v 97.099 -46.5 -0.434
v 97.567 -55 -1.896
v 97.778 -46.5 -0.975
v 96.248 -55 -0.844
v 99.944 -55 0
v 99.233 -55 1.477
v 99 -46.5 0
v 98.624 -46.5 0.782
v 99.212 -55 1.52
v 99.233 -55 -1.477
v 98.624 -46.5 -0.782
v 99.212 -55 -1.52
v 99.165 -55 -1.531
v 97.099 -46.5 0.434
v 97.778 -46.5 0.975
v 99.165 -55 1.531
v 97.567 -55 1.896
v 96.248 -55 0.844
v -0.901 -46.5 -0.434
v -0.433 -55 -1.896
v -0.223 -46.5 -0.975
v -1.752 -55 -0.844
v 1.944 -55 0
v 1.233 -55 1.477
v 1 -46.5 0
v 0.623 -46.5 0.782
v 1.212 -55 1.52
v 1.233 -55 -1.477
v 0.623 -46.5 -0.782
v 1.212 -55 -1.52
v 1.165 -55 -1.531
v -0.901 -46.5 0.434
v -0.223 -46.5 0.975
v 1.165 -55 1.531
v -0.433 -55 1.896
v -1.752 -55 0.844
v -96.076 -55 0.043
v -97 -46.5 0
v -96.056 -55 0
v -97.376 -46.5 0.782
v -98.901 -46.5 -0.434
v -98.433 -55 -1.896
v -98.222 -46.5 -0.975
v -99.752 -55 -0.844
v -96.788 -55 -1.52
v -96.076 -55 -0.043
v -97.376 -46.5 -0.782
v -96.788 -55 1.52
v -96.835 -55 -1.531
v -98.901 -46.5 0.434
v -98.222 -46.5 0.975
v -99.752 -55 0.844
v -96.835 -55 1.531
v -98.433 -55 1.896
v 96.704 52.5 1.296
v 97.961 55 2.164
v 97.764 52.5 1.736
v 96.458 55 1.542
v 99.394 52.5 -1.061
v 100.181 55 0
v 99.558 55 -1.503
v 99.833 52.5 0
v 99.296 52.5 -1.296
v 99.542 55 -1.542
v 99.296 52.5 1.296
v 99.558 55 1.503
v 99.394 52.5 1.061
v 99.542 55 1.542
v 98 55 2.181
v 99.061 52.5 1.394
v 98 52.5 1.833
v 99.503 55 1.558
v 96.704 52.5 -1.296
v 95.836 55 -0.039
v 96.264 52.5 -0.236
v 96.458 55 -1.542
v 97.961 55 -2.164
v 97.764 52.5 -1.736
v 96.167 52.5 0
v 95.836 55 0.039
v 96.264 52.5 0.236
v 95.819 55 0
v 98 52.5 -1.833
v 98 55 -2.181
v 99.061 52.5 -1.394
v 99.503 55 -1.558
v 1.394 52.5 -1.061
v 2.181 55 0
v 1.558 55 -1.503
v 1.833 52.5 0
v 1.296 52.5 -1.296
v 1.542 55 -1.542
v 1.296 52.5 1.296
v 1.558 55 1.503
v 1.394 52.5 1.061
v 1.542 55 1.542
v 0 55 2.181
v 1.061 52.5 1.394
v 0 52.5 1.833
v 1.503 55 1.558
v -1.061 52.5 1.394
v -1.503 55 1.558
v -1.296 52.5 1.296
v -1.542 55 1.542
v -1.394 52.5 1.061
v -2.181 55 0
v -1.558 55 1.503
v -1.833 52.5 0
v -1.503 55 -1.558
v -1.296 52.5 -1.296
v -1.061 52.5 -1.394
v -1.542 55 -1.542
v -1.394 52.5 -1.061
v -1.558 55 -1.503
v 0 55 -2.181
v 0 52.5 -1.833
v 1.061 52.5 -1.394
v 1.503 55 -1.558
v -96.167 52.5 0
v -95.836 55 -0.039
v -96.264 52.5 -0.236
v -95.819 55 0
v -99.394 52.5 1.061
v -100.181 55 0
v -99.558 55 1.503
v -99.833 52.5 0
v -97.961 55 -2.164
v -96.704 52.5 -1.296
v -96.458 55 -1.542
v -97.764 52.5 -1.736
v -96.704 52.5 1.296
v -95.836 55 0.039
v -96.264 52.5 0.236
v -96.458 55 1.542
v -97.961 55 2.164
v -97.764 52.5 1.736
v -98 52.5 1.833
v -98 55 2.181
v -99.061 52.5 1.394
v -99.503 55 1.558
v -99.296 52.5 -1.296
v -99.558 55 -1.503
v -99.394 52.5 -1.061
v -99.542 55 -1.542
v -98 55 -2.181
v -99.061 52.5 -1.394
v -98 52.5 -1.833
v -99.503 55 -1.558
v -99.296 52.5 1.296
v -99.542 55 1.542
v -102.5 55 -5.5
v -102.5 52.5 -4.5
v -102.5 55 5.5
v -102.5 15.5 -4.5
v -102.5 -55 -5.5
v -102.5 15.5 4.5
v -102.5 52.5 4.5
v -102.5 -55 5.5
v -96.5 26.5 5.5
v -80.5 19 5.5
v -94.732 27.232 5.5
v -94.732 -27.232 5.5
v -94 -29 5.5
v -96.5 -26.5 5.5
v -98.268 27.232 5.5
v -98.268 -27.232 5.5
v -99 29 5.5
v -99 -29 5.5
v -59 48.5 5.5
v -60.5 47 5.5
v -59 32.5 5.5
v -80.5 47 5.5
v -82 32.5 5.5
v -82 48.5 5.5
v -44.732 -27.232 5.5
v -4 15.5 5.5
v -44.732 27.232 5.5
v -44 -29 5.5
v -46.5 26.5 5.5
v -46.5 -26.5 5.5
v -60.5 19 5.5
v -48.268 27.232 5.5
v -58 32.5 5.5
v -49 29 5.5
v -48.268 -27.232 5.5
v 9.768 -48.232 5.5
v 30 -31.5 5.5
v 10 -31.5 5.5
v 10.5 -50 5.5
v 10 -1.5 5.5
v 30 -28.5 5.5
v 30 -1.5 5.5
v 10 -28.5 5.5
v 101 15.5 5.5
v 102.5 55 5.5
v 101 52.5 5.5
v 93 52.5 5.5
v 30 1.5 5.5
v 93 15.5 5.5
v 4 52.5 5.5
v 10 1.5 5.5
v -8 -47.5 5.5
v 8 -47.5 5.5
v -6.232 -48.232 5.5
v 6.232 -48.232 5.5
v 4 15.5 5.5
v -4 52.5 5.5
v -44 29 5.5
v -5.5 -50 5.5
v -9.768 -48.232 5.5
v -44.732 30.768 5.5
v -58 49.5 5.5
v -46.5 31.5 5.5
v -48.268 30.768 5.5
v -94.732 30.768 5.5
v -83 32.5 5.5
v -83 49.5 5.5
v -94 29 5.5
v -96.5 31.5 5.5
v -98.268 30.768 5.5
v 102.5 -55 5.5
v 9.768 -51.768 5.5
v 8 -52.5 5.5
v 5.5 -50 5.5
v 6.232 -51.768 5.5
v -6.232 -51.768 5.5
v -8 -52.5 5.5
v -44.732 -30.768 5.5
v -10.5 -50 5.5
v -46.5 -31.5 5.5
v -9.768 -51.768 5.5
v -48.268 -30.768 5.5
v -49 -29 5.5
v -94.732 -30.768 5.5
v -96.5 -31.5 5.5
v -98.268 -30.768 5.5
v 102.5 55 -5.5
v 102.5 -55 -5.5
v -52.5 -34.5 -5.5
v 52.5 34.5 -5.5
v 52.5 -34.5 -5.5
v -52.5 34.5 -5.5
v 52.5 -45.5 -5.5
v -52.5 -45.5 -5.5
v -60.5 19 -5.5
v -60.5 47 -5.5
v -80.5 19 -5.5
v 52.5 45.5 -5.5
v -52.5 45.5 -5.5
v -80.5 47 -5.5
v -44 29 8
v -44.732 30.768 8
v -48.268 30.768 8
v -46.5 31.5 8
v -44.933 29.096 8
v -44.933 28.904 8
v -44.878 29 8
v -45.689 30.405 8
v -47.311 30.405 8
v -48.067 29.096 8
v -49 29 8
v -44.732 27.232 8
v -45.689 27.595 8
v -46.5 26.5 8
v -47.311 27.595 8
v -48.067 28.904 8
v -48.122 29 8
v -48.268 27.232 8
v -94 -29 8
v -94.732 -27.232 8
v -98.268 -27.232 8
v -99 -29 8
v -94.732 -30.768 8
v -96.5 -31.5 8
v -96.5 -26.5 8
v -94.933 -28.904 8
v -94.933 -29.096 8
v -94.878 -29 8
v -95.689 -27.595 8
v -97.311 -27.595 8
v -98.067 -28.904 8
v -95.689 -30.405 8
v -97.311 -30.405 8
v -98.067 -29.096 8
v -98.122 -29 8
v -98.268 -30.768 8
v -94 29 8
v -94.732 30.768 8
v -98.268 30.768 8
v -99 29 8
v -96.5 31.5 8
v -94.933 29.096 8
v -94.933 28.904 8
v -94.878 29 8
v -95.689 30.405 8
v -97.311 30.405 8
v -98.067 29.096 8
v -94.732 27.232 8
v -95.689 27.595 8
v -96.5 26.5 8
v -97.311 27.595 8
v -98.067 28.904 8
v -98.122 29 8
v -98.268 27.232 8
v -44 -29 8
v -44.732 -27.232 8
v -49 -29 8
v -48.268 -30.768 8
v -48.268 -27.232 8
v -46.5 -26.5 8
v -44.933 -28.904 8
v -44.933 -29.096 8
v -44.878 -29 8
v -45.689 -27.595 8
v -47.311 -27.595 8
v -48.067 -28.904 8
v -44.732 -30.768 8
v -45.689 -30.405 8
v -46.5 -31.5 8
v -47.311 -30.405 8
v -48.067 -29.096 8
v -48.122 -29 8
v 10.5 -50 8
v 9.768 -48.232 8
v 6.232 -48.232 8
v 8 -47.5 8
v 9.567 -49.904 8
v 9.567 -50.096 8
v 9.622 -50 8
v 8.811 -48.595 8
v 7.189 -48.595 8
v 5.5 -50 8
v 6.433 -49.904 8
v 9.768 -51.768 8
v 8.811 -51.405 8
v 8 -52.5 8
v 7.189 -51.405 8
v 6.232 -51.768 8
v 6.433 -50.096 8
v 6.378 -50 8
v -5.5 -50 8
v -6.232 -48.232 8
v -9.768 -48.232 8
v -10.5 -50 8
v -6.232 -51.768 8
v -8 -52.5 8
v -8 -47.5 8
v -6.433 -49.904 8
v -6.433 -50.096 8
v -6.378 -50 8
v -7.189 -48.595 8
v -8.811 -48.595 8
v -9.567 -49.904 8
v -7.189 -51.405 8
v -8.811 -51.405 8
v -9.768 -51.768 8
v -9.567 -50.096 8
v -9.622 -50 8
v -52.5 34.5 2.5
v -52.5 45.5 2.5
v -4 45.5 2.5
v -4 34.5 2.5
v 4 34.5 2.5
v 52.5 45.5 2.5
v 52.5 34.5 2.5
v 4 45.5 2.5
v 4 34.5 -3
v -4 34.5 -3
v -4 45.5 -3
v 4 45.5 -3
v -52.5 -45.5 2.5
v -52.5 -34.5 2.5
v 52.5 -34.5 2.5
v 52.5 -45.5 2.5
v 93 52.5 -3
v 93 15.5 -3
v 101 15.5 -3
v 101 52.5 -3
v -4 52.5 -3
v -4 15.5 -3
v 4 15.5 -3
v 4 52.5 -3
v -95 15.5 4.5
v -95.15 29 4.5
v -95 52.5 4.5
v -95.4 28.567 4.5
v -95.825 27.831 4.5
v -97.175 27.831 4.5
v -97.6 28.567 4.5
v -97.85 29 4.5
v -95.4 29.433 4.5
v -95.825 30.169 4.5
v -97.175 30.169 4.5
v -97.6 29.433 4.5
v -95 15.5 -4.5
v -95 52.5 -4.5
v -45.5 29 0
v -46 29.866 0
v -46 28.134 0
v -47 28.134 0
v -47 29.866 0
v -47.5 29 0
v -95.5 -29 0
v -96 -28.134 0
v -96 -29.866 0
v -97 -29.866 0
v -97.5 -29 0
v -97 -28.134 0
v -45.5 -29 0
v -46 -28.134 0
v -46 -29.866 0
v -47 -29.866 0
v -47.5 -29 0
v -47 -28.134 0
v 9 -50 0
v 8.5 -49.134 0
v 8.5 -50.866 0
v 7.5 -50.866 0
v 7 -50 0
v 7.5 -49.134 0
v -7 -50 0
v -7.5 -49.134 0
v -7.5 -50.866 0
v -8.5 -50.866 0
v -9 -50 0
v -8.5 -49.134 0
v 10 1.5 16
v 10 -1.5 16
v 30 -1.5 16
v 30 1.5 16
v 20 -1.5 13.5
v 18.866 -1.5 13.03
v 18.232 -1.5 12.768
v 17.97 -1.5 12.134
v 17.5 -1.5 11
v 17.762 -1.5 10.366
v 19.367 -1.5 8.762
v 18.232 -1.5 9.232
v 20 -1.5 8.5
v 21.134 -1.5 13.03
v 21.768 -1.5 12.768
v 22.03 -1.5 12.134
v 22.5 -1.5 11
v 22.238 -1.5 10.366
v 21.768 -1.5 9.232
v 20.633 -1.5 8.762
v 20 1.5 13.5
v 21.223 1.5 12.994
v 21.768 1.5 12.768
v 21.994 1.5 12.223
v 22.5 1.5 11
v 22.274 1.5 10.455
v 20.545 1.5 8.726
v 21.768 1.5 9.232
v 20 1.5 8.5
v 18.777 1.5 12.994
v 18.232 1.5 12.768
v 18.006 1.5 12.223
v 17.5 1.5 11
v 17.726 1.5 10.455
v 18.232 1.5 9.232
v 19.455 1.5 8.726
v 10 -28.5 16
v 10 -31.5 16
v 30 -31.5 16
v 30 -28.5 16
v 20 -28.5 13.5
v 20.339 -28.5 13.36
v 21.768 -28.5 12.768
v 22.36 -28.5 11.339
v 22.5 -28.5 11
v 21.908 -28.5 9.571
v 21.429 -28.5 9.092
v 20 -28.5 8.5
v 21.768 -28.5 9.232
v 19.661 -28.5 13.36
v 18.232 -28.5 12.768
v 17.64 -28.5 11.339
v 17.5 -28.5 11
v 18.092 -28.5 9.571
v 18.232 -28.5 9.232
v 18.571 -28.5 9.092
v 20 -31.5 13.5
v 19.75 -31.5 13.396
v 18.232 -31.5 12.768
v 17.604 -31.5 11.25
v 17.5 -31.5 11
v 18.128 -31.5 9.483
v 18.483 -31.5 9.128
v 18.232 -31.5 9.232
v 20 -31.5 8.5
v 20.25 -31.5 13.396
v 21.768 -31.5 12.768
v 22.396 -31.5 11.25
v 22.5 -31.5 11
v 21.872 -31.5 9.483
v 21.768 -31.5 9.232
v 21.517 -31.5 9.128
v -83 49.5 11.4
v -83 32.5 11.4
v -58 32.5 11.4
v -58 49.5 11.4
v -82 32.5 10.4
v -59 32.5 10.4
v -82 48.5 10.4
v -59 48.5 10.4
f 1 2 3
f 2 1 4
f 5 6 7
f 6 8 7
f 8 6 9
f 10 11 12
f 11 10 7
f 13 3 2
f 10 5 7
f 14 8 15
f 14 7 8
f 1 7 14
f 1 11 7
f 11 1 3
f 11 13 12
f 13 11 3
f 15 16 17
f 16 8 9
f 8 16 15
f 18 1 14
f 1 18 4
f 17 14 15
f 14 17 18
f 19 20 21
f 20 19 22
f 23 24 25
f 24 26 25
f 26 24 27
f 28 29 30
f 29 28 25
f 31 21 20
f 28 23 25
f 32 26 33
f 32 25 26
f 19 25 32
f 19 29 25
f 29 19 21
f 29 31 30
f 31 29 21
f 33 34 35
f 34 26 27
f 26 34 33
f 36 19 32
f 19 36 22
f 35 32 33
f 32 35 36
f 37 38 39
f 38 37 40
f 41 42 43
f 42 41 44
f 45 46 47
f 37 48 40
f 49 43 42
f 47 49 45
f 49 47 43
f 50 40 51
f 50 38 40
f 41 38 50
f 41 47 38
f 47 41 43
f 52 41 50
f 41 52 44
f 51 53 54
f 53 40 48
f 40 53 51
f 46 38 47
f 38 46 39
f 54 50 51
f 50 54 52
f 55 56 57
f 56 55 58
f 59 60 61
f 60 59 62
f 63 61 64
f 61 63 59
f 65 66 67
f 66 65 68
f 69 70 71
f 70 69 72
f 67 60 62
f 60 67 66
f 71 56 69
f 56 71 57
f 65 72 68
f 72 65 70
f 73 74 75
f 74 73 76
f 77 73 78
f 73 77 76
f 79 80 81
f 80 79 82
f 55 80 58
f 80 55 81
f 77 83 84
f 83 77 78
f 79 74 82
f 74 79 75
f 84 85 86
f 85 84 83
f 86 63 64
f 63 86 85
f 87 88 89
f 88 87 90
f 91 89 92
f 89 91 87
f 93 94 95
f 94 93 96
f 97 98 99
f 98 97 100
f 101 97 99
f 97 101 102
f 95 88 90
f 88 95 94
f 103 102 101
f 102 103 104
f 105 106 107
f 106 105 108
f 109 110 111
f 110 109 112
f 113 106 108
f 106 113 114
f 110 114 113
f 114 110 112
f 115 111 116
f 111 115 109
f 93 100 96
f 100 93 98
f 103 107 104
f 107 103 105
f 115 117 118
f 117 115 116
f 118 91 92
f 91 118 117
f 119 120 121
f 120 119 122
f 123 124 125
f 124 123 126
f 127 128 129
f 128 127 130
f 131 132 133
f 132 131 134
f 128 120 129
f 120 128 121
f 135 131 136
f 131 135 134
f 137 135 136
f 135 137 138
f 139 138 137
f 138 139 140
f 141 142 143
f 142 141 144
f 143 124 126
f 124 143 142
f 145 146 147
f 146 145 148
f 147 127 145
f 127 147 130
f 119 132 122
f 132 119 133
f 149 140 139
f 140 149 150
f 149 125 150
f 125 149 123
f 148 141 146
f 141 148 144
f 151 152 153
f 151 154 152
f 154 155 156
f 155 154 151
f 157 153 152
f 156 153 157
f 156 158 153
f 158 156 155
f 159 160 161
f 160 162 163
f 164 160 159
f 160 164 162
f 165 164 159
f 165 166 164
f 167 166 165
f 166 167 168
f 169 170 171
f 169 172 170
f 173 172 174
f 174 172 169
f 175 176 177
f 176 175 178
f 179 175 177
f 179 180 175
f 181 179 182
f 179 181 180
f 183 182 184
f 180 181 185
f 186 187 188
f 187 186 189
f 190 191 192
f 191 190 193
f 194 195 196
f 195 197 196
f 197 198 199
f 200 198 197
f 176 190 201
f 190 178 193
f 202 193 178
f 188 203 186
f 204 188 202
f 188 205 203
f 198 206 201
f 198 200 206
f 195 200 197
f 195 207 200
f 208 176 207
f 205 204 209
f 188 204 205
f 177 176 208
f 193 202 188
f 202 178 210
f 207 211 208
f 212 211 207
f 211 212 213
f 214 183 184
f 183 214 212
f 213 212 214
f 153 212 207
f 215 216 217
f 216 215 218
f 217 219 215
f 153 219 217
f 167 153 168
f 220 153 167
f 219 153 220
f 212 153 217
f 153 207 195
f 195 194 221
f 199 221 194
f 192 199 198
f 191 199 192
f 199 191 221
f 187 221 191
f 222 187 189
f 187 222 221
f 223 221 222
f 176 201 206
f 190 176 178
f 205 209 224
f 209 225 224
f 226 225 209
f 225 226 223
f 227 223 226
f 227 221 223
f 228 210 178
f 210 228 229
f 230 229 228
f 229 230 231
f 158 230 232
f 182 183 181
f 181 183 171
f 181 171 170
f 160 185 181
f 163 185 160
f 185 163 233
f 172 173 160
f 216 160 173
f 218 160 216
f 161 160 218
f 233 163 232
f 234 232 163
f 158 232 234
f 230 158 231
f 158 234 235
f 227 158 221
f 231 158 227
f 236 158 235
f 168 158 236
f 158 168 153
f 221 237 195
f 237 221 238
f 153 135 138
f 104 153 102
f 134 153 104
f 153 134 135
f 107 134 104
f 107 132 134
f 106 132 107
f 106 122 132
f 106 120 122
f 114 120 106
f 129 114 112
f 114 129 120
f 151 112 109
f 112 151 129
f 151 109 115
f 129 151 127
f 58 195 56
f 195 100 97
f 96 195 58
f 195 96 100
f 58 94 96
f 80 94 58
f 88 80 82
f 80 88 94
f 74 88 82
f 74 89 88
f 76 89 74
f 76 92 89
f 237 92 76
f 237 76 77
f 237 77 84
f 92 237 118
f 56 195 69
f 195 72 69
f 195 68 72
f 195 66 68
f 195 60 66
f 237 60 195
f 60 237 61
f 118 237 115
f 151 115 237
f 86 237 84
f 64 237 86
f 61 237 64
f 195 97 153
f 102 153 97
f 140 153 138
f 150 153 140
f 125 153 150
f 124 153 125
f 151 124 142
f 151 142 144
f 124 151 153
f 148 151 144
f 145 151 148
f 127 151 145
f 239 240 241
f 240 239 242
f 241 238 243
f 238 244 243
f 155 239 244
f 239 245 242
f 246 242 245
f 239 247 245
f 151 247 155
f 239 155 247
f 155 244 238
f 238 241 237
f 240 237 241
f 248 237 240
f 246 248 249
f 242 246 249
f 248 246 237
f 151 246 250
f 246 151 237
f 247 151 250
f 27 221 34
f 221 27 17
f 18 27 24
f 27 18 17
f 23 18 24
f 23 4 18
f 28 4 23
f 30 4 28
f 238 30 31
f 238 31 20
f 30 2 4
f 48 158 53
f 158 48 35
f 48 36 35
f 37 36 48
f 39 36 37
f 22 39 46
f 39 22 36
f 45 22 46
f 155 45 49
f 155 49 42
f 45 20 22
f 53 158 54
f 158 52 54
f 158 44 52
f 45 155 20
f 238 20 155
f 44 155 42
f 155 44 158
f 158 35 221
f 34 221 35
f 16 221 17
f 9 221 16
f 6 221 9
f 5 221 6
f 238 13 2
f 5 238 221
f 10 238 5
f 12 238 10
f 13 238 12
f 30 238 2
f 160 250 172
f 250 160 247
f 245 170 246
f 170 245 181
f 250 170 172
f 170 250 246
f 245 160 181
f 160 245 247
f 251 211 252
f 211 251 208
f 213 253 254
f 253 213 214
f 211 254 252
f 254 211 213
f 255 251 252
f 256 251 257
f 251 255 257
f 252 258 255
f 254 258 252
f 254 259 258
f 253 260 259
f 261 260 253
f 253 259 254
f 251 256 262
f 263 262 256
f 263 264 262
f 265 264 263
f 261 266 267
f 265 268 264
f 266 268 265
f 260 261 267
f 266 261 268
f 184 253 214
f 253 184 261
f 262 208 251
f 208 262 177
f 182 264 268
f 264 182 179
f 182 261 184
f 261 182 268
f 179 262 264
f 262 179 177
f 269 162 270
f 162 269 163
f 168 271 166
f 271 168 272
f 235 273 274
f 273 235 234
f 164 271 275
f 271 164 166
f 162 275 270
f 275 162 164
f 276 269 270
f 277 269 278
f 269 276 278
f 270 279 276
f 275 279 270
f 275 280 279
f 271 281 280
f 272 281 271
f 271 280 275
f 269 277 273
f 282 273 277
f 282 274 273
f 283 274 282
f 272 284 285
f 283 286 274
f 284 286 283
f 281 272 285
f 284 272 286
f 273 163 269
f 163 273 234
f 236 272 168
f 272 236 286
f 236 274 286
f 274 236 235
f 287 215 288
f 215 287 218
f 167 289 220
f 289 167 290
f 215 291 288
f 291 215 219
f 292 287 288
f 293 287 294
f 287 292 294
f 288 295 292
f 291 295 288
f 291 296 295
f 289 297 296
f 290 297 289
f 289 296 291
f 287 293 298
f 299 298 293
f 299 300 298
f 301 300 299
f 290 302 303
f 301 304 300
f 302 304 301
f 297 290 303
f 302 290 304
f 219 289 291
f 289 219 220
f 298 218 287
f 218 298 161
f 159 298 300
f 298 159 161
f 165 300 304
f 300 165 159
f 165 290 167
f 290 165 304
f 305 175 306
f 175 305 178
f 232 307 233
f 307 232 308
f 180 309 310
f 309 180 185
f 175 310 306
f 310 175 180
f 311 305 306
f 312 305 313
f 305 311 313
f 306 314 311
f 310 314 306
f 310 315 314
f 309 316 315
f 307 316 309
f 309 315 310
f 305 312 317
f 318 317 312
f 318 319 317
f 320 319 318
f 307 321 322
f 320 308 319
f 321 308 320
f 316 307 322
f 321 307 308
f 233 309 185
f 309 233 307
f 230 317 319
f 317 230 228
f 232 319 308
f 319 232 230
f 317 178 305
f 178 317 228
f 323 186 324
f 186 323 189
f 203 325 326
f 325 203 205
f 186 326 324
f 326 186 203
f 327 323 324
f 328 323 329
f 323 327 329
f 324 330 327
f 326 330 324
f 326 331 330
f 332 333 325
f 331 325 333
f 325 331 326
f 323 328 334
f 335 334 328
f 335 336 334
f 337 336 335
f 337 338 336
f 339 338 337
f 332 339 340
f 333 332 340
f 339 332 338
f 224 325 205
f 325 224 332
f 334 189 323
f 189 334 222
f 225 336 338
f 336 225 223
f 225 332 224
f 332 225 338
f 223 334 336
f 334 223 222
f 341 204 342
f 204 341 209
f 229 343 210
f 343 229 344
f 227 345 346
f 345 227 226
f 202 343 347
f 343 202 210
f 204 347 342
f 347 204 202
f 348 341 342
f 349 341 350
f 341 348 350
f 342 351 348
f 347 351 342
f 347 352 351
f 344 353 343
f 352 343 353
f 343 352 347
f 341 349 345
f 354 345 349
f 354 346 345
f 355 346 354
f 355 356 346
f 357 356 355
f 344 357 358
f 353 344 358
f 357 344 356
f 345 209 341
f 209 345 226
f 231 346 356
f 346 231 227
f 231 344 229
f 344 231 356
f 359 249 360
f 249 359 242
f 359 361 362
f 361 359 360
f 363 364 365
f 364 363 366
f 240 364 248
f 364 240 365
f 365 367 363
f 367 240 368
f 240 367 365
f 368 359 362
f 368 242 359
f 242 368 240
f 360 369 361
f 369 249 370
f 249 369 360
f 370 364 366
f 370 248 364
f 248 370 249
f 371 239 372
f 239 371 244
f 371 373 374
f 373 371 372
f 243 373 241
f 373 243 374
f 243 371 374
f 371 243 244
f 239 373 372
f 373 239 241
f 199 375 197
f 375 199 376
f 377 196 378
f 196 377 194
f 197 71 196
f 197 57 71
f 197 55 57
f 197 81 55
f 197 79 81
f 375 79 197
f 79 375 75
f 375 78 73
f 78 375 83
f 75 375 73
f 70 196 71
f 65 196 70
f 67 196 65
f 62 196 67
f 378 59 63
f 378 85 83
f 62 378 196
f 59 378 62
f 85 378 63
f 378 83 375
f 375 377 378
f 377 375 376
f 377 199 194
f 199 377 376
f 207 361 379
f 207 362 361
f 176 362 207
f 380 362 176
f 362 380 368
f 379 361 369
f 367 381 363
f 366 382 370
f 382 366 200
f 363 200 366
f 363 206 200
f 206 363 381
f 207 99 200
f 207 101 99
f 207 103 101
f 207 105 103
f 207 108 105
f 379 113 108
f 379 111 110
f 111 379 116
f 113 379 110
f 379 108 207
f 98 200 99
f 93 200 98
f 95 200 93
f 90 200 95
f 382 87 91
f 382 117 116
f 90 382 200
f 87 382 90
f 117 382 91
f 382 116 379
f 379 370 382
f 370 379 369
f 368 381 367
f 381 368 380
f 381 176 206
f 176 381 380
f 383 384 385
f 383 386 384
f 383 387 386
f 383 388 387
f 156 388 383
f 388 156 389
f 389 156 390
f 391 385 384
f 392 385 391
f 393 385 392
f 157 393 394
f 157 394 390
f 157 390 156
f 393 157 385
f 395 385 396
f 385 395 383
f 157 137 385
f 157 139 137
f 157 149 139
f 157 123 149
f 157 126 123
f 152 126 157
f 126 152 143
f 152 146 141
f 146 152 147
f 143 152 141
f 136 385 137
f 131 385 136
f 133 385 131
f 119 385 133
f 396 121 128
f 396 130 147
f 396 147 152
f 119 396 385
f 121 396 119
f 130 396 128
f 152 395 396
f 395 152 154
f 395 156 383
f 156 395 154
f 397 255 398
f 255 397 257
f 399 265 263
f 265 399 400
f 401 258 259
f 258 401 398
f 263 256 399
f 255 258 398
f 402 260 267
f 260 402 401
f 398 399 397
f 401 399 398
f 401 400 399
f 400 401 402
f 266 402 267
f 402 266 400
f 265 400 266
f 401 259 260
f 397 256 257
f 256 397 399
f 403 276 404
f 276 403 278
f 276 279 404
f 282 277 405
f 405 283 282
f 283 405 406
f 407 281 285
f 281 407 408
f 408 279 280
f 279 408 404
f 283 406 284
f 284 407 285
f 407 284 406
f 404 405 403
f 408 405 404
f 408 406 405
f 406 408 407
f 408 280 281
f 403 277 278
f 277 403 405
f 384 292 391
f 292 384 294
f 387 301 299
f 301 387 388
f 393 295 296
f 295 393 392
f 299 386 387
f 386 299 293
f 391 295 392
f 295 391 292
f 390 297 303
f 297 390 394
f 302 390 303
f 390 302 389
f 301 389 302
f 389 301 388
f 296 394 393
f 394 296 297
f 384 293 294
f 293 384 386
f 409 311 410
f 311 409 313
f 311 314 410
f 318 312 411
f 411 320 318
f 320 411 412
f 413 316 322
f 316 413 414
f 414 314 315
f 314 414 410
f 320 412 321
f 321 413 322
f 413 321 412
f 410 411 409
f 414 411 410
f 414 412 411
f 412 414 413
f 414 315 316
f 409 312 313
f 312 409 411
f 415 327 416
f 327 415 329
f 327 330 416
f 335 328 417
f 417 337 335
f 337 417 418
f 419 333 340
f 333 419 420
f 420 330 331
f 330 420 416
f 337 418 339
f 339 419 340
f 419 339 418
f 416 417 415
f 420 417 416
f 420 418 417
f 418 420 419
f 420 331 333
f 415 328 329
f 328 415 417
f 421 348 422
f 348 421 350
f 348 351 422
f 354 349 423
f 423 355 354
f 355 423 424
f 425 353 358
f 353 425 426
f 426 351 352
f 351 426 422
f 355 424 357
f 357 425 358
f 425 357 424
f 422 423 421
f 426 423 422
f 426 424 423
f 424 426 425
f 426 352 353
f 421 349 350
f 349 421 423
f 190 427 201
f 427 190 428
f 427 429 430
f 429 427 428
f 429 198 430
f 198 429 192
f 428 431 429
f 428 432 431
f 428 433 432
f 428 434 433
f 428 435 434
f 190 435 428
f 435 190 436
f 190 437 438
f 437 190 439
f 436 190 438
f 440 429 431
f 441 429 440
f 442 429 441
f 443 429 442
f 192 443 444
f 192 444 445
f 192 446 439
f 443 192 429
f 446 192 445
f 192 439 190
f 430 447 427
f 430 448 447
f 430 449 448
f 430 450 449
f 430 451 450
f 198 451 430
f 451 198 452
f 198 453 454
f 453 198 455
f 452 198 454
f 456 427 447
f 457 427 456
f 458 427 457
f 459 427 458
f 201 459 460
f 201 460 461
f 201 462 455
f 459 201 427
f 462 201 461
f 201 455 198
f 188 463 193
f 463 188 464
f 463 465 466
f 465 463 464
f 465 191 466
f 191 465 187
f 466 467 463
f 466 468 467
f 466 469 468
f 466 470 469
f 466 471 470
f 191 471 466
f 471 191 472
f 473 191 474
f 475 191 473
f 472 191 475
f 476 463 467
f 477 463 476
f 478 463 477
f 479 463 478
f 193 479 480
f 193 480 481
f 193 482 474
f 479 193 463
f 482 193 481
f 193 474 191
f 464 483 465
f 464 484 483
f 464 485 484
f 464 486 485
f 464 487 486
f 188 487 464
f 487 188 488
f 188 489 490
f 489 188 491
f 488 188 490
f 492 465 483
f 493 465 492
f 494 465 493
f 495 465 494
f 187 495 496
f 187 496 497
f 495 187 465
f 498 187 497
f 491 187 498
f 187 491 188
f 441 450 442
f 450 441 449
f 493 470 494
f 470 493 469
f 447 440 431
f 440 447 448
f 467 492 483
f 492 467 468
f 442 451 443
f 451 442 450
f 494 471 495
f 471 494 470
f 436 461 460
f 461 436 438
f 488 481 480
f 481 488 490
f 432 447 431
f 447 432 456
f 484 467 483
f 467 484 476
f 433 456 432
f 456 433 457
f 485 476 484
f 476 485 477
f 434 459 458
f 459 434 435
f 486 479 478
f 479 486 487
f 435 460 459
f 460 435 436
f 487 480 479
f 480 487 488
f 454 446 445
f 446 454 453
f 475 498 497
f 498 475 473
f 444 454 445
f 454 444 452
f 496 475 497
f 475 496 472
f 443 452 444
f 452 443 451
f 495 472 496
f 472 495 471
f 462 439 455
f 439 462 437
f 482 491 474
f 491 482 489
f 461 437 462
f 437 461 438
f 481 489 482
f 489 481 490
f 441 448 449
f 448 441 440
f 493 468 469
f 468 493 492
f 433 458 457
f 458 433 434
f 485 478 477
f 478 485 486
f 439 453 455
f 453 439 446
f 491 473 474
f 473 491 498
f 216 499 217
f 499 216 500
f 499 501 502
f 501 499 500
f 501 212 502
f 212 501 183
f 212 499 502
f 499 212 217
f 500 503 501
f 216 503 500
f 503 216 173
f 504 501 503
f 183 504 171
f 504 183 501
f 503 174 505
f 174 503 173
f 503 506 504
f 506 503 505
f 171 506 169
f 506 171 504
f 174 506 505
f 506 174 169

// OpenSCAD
module _screws_box(diam){
	translate([98, 0 , 2 ])  cylinder(  9 , 1,  diam/2 ,true);
	translate([0, 0 , 2 ])  cylinder(  9 , 1,  diam/2 ,true);
	translate([-98, 0 , 2 ])  cylinder(  9 , 1,  diam/2 ,true);
} 
 
module screws_box(){
	translate([0, -49, 0 ]) rotate([90, 0 , 0 ]) _screws_box(4);
	translate([0, 49, 0 ]) rotate([-90, 0 , 0 ]) _screws_box(4.5);
} 
module soporte_pi (){
	translate([25, 29, 5.5 ])  cylinder(  5 , 2.5,  2.5 ,true); 
	translate([-25, -29,  5.5 ])  cylinder(  5 , 2.5,  2.5 ,true); 
	translate([-25, 29,  5.5 ])  cylinder(  5 , 2.5,  2.5 ,true); 
	translate([25, -29,  5.5 ])  cylinder(  5 , 2.5,  2.5 ,true); 
}
 module talpwr(){
  translate([8, -50, 4.5 ])  cylinder(  9 , 1,  1.7 ,true);
  translate([-8, -50, 4.5 ])  cylinder(  9 , 1,  1.7 ,true);    
 }
 
 module tal_pi(){
 translate([25, 29, 4.5]) cylinder(  9 , 1,  1.7 ,true);
 translate([-25, -29,  4.5 ]) cylinder(  9 , 1,  1.7 ,true);
 translate([-25, 29,  4.5 ])cylinder(  9 , 1,  1.7 ,true);
 translate([25, -29,  4.5 ]) cylinder(  9 , 1,  1.7 ,true); 
 }

module sd(){
    difference(){
  cube([25 , 17,6 ] ,true ); 
   translate([0, -1,  -1 ])cube([23 , 17, 6 ] ,true );  
    } 
} 
 
module box(){ 
	difference(){
		difference(){
			cube([205 , 110,11 ] ,true ); 
			screws_box();
		}
		translate([(102.5-32)*-1, 33, 0 ])  cube([20 , 28, 12 ] ,true ); 
	}

	translate([-71.5, 0, 0 ]) soporte_pi();
	translate([8, -50, 5.5 ])  cylinder(  5 , 2.5,  2.5 ,true); 
	translate([-8, -50, 5.5 ])  cylinder(  5 , 2.5,  2.5 ,true);  
}
 
 
 
difference(){
	difference(){
		difference(){
			difference(){
				difference(){
					difference(){
						difference(){
							box();
							translate([0, 40, -3 ])   cube([105 , 11,11 ] ,true ); 
						}
						translate([0, -40, -3 ])   cube([105 , 11,11 ] ,true ); 
					}
					translate([97, 34, 1.5 ])   cube([8, 37,9 ] ,true ); 
				}
				translate([0, 34, 1.5 ])   cube([8, 37,9 ] ,true ); 
			}
			translate([-99, 34, 0 ])   cube([8, 37,9 ] ,true ); 
		}
		translate([-71.5, 0, 0 ]) tal_pi();
}
talpwr();
}
difference(){ 
    union(){ 
        translate([20, 0, 10 ])   cube([20, 3, 12] ,true ); 
        translate([20, -30, 10 ])   cube([20, 3, 12] ,true ); 
    }
  translate([20, -10, 11 ]) rotate([90, 0 , 0 ]) cylinder(  60 , 2.5,  2.5 ,true); 
}
 
translate([-70.5, 41, 8.4 ]) sd();
  
